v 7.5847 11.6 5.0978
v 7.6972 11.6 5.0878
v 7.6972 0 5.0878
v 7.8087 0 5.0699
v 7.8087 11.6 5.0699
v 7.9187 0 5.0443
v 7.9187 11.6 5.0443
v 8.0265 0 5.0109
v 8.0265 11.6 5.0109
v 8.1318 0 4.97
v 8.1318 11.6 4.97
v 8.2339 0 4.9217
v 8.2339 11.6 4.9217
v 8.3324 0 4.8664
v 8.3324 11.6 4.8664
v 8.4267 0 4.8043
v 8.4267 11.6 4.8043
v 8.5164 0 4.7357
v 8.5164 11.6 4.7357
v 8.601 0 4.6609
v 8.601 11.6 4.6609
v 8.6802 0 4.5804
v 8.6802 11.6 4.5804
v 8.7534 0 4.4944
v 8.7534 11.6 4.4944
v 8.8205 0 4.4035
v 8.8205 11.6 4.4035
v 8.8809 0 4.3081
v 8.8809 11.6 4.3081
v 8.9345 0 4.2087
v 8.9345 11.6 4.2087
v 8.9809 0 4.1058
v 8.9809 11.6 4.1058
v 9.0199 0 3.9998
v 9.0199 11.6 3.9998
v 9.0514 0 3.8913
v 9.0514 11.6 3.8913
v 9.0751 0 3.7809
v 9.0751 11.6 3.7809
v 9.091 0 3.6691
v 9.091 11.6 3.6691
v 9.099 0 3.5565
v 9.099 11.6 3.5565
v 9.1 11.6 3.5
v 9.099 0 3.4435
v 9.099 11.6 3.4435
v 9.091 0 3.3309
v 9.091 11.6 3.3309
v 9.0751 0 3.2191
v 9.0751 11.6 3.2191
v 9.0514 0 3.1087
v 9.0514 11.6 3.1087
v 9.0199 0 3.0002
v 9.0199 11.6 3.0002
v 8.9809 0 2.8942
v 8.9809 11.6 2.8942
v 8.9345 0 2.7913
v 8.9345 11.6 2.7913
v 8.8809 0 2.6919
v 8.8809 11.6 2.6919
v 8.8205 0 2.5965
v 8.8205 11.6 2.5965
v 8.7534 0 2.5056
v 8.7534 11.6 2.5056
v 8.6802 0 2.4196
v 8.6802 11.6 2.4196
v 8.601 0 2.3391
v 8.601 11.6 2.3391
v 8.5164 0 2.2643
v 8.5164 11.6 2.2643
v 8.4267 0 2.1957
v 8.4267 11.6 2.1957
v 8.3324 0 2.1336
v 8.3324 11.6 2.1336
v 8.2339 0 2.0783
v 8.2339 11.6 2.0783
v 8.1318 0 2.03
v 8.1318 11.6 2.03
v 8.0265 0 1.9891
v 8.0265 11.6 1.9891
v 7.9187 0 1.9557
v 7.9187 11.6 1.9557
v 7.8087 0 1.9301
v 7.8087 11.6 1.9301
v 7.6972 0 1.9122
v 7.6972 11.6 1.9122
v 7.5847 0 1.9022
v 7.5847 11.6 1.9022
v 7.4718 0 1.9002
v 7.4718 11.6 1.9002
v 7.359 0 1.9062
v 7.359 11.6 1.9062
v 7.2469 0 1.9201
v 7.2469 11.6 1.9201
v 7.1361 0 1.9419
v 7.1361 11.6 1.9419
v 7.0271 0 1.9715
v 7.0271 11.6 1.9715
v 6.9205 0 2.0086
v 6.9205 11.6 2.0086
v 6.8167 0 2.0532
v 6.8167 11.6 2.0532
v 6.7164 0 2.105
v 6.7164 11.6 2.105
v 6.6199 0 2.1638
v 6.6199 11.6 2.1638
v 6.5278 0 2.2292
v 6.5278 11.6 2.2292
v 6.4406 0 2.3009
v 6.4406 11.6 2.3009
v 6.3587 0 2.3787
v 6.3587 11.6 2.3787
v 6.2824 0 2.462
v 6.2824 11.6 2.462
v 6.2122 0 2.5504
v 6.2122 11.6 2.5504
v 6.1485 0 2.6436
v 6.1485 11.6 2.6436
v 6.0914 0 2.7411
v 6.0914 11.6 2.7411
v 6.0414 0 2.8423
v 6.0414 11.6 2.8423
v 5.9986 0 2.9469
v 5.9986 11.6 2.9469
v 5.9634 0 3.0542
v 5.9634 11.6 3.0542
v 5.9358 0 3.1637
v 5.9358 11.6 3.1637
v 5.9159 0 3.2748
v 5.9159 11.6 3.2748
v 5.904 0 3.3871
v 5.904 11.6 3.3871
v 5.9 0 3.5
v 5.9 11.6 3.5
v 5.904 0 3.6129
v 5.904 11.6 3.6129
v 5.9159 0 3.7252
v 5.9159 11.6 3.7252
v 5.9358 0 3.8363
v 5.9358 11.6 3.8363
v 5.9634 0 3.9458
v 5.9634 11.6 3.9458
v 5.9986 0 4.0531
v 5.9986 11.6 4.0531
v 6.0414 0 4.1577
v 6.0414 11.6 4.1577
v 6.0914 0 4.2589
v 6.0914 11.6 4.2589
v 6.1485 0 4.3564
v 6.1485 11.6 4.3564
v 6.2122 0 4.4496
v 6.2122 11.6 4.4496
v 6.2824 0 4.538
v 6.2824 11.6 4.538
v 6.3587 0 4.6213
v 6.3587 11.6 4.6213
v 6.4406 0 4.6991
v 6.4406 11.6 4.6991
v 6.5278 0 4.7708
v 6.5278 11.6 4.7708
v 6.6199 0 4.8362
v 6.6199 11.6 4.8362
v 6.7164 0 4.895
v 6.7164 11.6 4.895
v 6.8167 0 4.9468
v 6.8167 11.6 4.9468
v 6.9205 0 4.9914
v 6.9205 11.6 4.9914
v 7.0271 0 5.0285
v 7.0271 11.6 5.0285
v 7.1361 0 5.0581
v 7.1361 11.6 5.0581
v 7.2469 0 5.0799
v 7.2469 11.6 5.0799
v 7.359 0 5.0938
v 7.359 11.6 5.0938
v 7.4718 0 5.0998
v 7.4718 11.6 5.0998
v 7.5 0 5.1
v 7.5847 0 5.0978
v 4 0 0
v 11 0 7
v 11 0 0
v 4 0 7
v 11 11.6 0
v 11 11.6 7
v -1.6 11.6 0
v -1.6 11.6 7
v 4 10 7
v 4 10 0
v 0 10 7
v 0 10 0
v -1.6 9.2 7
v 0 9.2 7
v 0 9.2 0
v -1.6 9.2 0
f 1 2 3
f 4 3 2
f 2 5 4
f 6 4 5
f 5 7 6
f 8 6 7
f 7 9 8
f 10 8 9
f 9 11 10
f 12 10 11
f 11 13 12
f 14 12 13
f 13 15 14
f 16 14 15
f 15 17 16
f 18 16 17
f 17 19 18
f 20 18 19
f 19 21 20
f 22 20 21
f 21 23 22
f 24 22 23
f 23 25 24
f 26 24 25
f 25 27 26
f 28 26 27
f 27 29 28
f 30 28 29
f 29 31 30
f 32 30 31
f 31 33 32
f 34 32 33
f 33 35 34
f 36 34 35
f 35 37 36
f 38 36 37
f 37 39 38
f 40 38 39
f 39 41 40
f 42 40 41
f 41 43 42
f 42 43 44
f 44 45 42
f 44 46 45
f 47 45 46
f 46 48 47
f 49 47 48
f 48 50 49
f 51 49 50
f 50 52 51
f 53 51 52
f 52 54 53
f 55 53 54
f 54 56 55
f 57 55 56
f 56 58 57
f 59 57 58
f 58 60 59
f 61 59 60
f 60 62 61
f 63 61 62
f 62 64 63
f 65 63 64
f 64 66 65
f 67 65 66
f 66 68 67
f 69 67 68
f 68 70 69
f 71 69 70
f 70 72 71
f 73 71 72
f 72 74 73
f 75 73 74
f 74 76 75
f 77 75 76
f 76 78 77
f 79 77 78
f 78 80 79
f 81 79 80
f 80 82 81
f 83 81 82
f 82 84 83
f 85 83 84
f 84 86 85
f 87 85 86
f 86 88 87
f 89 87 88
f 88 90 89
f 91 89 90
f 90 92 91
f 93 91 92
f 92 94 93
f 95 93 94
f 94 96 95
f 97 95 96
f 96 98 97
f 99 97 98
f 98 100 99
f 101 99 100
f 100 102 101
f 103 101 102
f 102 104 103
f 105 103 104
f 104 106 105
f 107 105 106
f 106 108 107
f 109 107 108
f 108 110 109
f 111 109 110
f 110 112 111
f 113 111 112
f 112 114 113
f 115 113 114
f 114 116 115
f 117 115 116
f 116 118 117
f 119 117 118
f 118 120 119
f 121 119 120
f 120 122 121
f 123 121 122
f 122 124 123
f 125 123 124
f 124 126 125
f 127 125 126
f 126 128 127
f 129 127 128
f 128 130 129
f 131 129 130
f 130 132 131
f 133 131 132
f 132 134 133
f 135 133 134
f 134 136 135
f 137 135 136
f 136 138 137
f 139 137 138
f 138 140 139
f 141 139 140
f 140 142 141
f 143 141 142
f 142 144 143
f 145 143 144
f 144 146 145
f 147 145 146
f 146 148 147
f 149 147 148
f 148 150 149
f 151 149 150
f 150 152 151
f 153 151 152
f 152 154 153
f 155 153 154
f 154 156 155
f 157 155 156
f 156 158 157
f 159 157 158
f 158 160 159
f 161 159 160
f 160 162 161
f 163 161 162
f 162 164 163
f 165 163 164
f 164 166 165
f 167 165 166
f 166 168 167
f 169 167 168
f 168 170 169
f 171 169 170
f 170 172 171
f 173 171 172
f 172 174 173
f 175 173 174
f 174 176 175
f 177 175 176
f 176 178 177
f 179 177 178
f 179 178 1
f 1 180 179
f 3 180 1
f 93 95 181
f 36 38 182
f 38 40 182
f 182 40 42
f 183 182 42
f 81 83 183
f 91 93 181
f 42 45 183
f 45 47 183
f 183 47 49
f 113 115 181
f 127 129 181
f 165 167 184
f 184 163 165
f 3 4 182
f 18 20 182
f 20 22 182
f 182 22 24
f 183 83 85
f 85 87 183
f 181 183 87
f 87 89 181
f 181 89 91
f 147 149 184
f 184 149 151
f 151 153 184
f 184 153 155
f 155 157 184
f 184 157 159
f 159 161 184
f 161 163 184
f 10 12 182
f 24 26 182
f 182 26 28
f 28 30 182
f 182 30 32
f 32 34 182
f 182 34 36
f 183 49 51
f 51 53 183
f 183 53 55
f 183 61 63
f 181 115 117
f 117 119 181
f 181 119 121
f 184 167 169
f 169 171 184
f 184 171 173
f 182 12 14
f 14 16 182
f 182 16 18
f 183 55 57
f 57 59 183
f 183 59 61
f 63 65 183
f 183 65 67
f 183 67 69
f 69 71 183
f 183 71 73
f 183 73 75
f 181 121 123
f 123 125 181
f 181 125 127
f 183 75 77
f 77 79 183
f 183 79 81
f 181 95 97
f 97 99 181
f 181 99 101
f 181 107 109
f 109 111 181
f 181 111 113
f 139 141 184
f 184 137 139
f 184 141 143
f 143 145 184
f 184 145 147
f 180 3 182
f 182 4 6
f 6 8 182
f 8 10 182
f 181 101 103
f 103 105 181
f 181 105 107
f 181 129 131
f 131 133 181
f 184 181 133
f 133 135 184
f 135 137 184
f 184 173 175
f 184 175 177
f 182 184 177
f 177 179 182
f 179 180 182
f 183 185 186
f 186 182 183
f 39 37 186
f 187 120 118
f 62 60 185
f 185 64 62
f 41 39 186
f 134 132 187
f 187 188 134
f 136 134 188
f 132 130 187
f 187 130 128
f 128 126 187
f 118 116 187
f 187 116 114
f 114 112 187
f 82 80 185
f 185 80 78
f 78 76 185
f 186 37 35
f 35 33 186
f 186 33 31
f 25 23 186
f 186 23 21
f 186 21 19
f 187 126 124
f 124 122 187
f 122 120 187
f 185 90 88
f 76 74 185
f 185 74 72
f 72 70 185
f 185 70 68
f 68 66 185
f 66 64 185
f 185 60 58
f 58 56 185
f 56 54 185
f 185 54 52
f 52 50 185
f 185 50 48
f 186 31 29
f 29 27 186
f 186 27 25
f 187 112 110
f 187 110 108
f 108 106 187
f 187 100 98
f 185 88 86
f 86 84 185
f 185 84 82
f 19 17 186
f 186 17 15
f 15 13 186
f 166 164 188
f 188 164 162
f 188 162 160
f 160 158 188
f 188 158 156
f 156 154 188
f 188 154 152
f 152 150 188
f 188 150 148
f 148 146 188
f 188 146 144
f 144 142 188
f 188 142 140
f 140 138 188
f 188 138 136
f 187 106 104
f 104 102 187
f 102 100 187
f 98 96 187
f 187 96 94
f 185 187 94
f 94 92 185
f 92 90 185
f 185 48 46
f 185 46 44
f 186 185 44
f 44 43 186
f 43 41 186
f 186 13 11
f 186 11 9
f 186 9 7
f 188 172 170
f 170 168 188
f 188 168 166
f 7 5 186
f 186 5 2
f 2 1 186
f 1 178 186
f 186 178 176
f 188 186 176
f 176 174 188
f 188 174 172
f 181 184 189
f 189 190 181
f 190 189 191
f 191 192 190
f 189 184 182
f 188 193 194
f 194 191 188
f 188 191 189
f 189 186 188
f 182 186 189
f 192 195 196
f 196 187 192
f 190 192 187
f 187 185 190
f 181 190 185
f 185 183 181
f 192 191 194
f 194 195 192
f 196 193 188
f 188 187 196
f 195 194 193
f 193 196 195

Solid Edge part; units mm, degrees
sketch "Sketch1" plane through (0, 0, 0) normal (0, 0, 1) x (1, 0, 0)
  line L0 (0, 10) -> (0, 9.2)
  line L1 (-1.6, 9.2) -> (0, 9.2)
  line L2 (-1.6, 11.6) -> (-1.6, 9.2)
  line L3 (10.1, 11.6) -> (-1.6, 11.6)
  line L4 (10.1, 0.9) -> (10.1, 11.6)
  line L5 (10.1, 0) -> (10.1, 0.9)
  line L6 (7.5, 0) -> (10.1, 0)
  line L7 (4, 0) -> (7.5, 0)
  line L8 (4, 10) -> (4, 0)
  line L9 (0, 10) -> (4, 10)
extrude "Protrusion1" add sketch "Sketch1" along normal blind 7
hole "Hole_1" at (7.5, 0.9, 3.5) direction (0, -1, 0) diameter 3.2 end up to next
sketch "Sketch2" plane through (7.5, 0.9, 3.5) normal (0, -1, 0) x (0, 0, -1)
  circle A0 centre (0, 0) radius 1.6
extrude "Cutout1" cut sketch "Sketch2" against normal up to next
sketch "Sketch3" plane through (10.1, 5.8, 3.5) normal (1, 0, 0) x (0, 1, 0)
  line L0 (-5.8, 3.5) -> (5.8, 3.5)
  line L1 (5.8, 3.5) -> (5.8, -3.5)
  line L2 (5.8, -3.5) -> (-5.8, -3.5)
  line L3 (-5.8, -3.5) -> (-5.8, 3.5)
extrude "ExtrudedProtrusion_2" add sketch "Sketch3" along normal blind 0.9
